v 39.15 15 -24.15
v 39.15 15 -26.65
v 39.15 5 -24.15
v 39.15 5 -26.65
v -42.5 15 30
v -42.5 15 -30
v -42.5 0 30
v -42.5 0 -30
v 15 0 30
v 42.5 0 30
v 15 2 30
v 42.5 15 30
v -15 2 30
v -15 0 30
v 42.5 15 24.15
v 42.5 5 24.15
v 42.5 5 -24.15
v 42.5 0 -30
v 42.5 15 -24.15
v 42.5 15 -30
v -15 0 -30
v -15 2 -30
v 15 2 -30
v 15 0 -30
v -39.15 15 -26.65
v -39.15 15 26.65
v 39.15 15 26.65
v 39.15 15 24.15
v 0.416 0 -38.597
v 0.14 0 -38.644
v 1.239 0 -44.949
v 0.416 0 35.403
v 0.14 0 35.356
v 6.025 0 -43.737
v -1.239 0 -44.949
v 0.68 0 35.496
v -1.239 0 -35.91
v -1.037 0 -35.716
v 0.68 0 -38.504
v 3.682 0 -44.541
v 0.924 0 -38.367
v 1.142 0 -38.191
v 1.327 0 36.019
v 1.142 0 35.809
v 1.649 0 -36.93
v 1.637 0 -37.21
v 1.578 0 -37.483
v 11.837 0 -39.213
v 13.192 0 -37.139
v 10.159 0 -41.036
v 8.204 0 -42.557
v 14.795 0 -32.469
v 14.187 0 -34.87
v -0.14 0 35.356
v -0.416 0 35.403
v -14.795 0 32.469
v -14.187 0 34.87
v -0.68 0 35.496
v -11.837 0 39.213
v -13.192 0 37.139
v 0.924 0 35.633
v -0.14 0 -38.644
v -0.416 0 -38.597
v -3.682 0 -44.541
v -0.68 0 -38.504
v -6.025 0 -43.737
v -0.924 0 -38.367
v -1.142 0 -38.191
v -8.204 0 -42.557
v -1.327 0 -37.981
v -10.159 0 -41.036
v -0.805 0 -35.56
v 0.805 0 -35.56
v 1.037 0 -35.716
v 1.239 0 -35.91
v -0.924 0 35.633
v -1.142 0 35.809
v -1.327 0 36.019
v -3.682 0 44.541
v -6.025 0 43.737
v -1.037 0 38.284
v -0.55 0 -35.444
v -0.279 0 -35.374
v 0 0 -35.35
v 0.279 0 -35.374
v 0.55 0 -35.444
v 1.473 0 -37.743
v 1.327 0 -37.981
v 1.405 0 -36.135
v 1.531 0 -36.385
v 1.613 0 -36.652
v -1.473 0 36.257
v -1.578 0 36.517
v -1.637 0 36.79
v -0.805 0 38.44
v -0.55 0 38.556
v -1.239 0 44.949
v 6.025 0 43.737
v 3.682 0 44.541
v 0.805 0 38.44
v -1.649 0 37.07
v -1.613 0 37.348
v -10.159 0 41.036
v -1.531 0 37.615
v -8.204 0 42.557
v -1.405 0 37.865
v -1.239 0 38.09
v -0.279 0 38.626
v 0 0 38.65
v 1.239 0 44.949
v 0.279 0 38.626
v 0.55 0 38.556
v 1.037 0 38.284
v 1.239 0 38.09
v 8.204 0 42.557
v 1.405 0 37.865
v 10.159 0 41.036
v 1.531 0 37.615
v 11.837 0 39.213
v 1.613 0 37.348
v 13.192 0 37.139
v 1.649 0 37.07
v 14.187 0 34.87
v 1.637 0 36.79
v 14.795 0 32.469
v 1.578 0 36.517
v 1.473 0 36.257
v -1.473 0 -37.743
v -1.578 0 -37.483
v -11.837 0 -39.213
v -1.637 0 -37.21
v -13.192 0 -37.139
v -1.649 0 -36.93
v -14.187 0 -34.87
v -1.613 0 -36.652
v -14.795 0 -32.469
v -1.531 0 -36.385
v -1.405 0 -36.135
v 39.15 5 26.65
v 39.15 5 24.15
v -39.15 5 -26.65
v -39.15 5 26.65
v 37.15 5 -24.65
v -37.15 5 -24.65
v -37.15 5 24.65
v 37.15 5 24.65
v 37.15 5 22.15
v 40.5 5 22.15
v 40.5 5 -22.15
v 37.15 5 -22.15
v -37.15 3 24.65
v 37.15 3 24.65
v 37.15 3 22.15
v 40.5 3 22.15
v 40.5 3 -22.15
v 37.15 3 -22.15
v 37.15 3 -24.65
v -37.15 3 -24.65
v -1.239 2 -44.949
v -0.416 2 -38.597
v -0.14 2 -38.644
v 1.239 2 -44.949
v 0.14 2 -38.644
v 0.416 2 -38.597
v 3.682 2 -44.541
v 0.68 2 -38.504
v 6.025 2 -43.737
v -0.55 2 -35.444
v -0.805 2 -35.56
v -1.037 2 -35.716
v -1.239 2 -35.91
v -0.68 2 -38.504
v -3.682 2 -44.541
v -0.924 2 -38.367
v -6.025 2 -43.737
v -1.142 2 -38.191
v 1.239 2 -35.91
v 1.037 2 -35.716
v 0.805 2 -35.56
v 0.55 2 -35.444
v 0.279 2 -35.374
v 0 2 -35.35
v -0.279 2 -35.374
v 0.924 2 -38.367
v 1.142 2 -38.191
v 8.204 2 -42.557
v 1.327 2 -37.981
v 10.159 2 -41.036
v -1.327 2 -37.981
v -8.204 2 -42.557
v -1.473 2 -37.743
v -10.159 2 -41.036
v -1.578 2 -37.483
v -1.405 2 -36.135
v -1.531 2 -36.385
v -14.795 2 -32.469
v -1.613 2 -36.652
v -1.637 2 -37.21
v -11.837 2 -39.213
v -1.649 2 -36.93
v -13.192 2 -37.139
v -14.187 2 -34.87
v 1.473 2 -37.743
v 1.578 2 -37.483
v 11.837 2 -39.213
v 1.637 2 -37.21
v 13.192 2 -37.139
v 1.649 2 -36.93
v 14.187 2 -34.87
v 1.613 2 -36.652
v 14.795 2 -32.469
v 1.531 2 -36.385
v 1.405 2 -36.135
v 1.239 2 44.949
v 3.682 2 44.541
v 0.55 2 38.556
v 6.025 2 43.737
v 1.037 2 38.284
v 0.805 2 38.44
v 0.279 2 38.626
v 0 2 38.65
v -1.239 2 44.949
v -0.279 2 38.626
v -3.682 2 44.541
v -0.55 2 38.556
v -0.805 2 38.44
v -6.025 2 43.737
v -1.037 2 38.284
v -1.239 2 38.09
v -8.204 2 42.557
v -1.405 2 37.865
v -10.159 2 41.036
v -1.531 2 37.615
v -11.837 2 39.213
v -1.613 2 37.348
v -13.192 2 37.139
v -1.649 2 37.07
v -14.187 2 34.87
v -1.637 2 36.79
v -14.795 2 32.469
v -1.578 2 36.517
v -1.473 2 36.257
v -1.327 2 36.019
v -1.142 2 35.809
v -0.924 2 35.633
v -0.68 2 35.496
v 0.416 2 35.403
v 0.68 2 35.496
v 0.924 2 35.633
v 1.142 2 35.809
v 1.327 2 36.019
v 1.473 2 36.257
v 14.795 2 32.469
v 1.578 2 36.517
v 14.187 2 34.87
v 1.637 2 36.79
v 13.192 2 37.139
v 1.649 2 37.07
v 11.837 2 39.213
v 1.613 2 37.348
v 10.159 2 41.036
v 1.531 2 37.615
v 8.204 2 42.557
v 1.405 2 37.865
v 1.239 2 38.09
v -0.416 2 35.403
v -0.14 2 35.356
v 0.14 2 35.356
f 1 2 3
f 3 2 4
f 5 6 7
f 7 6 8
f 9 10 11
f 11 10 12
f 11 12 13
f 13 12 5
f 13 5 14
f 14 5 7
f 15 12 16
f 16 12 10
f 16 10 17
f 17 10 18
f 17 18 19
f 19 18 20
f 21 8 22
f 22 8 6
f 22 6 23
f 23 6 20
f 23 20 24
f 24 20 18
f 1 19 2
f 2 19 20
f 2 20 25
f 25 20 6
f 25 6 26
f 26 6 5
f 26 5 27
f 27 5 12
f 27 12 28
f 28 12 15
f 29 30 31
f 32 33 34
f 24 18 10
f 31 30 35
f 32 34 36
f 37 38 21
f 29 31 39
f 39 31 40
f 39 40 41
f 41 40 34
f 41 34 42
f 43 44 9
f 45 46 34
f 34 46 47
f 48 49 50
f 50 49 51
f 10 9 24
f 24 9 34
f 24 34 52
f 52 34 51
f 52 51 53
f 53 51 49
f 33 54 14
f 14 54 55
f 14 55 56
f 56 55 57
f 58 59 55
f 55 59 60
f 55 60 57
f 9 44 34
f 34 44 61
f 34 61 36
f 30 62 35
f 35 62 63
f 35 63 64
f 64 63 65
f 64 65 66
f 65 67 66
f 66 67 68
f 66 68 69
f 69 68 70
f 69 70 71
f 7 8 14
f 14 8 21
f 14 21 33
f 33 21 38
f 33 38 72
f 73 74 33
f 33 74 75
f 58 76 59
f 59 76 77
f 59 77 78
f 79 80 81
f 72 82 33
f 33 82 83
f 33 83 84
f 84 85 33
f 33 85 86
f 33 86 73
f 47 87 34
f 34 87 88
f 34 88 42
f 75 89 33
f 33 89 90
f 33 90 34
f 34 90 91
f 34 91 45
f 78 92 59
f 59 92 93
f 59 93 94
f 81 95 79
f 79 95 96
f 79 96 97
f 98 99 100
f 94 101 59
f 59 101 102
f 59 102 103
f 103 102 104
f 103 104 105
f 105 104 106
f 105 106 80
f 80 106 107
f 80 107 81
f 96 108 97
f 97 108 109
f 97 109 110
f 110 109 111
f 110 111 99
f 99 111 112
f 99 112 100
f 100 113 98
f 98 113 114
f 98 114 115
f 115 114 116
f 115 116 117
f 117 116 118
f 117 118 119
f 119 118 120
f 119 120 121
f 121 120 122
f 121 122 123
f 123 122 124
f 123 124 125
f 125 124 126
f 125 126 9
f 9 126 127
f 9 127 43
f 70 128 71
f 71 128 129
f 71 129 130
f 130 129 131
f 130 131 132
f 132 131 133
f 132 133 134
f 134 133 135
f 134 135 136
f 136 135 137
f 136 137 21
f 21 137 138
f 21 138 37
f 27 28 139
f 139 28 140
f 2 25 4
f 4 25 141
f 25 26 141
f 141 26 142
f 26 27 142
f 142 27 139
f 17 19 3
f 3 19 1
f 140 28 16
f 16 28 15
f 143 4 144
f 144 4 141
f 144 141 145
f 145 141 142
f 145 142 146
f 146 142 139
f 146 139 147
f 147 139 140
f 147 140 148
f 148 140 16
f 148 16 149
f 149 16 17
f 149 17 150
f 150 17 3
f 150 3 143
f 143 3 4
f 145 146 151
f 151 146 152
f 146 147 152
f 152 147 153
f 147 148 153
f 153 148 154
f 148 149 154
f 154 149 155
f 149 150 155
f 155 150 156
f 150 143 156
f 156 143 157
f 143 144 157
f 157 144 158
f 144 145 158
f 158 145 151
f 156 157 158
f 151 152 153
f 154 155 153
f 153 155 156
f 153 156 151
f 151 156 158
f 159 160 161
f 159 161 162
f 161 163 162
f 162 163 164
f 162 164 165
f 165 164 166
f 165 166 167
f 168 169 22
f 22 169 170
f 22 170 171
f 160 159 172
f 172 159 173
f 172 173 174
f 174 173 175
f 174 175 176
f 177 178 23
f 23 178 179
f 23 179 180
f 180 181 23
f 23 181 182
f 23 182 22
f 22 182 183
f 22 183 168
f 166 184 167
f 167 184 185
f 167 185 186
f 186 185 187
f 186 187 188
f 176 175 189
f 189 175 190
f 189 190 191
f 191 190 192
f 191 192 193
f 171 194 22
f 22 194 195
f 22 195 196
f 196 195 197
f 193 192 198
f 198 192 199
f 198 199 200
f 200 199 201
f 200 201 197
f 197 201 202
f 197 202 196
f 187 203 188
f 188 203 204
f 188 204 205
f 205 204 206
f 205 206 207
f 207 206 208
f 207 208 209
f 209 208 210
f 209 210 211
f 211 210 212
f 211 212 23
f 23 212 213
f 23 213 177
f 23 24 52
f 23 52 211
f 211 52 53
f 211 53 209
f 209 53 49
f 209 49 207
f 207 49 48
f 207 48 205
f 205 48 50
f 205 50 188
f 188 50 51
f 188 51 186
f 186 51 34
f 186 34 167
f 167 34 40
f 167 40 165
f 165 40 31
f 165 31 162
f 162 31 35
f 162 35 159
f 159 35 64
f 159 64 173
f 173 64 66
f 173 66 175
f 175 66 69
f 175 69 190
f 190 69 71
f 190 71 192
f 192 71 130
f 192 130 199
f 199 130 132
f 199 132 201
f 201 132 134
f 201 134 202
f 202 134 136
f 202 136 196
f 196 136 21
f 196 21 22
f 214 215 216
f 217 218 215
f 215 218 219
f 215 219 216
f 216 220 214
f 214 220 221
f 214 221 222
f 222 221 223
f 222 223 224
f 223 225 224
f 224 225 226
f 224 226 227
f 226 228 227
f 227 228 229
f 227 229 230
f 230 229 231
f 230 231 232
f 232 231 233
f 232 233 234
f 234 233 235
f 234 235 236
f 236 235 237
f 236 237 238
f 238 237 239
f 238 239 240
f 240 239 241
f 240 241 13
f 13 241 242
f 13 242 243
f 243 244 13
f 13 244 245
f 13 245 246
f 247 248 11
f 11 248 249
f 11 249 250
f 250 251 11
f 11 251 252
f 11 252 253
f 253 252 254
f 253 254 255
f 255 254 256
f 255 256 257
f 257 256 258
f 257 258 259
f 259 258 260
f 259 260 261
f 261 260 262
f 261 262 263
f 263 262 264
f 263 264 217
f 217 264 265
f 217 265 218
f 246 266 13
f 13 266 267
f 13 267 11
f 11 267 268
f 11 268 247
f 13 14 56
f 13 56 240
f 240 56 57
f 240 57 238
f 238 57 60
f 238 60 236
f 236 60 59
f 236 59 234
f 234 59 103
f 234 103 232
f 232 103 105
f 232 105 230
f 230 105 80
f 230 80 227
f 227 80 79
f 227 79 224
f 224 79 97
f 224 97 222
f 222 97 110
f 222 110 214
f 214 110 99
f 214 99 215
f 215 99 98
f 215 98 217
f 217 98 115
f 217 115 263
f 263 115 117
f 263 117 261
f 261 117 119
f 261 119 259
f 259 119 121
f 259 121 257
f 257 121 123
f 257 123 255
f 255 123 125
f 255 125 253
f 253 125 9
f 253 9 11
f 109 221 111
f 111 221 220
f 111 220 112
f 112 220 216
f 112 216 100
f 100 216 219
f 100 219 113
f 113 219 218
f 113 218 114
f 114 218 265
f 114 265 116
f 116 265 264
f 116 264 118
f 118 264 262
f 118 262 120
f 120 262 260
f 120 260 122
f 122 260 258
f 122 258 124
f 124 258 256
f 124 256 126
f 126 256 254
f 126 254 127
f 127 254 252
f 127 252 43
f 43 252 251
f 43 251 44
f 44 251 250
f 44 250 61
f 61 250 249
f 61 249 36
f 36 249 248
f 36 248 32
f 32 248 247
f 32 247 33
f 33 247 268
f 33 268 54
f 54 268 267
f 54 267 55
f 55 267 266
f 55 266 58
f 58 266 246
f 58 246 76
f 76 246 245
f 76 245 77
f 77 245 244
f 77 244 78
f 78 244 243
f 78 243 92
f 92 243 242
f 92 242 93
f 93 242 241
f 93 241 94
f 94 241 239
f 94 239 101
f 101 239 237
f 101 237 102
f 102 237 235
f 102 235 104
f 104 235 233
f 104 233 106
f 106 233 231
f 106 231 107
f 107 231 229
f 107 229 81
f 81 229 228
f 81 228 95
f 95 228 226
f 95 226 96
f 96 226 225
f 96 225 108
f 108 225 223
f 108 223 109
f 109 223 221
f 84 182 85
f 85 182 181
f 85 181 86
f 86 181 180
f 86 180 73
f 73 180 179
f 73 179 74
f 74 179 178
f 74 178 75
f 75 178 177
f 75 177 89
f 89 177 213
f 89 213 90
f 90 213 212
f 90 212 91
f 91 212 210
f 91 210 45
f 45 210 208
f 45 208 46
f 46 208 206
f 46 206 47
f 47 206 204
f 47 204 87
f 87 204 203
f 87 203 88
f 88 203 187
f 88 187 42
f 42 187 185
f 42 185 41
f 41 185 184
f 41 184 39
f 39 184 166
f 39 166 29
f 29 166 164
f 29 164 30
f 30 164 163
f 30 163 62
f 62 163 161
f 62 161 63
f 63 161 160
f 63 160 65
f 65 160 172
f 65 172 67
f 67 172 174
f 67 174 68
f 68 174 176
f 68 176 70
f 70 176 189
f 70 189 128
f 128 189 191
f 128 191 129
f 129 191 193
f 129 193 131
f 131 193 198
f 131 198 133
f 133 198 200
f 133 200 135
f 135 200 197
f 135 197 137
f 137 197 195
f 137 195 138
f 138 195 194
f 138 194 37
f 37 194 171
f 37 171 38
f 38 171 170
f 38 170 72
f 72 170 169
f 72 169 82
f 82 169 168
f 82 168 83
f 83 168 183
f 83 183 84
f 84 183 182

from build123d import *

# Parameters (mm, degrees)
CROQUIS2_W              = 85
CROQUIS2_H              = 60
SALIENTE_EXTRUIR1_DEPTH = 15
VACIADO1_T              = -3
CROQUIS3_W              = 79
CROQUIS3_H              = 54
CROQUIS3_W_2            = 78.3
CROQUIS3_H_2            = 53.3
SALIENTE_EXTRUIR2_DEPTH = 12
CROQUIS6_W              = 3.35
CROQUIS6_H              = 48.3
CORTAR_EXTRUIR2_DEPTH   = 12
SALIENTE_EXTRUIR4_DEPTH = 2
SALIENTE_EXTRUIR5_DEPTH = 2
CROQUIS9_R              = 1.65
CORTAR_EXTRUIR3_DEPTH   = 21


with BuildPart() as part:
    # Croquis2 → Saliente-Extruir1 (new body)
    with BuildSketch(Plane(origin=(0, 0, 0), x_dir=(1, 0, 0), z_dir=(0, 1, 0))):
        Rectangle(CROQUIS2_W, CROQUIS2_H)
    extrude(amount=SALIENTE_EXTRUIR1_DEPTH)

    # Vaciado1
    vaciado1_openings = [part.faces().sort_by_distance(p)[0] for p in [
        (0, 15, 0),
    ]]
    offset(amount=VACIADO1_T, openings=vaciado1_openings, kind=Kind.INTERSECTION)

    # Croquis3 → Saliente-Extruir2 (add)
    with BuildSketch(Plane(origin=(0, 3, 0), x_dir=(1, 0, 0), z_dir=(0, 1, 0))):
        Rectangle(CROQUIS3_W, CROQUIS3_H)
        Rectangle(CROQUIS3_W_2, CROQUIS3_H_2, mode=Mode.SUBTRACT)
    extrude(amount=SALIENTE_EXTRUIR2_DEPTH)

    # Croquis6 → Cortar-Extruir2 (cut)
    with BuildSketch(Plane(origin=(0, 15, 0), x_dir=(1, 0, 0), z_dir=(0, 1, 0))):
        with Locations((40.825, 0)):
            Rectangle(CROQUIS6_W, CROQUIS6_H)
    extrude(amount=-CORTAR_EXTRUIR2_DEPTH, mode=Mode.SUBTRACT)

    # Croquis7 → Saliente-Extruir4 (add)
    with BuildSketch(Plane(origin=(0, 3, 0), x_dir=(1, 0, 0), z_dir=(0, 1, 0))):
        Polygon((39.15, -26.65), (39.15, -24.15), (42.5, -24.15), (42.5, 24.15), (39.15, 24.15), (39.15, 26.65), (-39.15, 26.65), (-39.15, -26.65), align=None)
        Polygon((37.15, -24.65), (37.15, -22.15), (40.5, -22.15), (40.5, 22.15), (37.15, 22.15), (37.15, 24.65), (-37.15, 24.65), (-37.15, -24.65), align=None, mode=Mode.SUBTRACT)
    extrude(amount=SALIENTE_EXTRUIR4_DEPTH)

    # Croquis8 → Saliente-Extruir5 (add)
    with BuildSketch(Plane.XZ):
        with BuildLine():
            Line((-15, -30), (-15, 30))
            ThreePointArc((-15, 30), (0, 45), (15, 30))
            Line((15, 30), (15, -30))
            ThreePointArc((15, -30), (0, -45), (-15, -30))
        make_face()
    extrude(amount=-SALIENTE_EXTRUIR5_DEPTH)

    # Croquis9 → Cortar-Extruir3 (cut)
    with BuildSketch(Plane(origin=(0, 2, 0), x_dir=(1, 0, 0), z_dir=(0, 1, 0))):
        with Locations(Location((0, 37, 0), (0, 0, 270))):
            Circle(CROQUIS9_R)
        with Locations(Location((0, -37, 0), (0, 0, 270))):
            Circle(CROQUIS9_R)
    extrude(amount=-CORTAR_EXTRUIR3_DEPTH, mode=Mode.SUBTRACT)


solid = part.part
